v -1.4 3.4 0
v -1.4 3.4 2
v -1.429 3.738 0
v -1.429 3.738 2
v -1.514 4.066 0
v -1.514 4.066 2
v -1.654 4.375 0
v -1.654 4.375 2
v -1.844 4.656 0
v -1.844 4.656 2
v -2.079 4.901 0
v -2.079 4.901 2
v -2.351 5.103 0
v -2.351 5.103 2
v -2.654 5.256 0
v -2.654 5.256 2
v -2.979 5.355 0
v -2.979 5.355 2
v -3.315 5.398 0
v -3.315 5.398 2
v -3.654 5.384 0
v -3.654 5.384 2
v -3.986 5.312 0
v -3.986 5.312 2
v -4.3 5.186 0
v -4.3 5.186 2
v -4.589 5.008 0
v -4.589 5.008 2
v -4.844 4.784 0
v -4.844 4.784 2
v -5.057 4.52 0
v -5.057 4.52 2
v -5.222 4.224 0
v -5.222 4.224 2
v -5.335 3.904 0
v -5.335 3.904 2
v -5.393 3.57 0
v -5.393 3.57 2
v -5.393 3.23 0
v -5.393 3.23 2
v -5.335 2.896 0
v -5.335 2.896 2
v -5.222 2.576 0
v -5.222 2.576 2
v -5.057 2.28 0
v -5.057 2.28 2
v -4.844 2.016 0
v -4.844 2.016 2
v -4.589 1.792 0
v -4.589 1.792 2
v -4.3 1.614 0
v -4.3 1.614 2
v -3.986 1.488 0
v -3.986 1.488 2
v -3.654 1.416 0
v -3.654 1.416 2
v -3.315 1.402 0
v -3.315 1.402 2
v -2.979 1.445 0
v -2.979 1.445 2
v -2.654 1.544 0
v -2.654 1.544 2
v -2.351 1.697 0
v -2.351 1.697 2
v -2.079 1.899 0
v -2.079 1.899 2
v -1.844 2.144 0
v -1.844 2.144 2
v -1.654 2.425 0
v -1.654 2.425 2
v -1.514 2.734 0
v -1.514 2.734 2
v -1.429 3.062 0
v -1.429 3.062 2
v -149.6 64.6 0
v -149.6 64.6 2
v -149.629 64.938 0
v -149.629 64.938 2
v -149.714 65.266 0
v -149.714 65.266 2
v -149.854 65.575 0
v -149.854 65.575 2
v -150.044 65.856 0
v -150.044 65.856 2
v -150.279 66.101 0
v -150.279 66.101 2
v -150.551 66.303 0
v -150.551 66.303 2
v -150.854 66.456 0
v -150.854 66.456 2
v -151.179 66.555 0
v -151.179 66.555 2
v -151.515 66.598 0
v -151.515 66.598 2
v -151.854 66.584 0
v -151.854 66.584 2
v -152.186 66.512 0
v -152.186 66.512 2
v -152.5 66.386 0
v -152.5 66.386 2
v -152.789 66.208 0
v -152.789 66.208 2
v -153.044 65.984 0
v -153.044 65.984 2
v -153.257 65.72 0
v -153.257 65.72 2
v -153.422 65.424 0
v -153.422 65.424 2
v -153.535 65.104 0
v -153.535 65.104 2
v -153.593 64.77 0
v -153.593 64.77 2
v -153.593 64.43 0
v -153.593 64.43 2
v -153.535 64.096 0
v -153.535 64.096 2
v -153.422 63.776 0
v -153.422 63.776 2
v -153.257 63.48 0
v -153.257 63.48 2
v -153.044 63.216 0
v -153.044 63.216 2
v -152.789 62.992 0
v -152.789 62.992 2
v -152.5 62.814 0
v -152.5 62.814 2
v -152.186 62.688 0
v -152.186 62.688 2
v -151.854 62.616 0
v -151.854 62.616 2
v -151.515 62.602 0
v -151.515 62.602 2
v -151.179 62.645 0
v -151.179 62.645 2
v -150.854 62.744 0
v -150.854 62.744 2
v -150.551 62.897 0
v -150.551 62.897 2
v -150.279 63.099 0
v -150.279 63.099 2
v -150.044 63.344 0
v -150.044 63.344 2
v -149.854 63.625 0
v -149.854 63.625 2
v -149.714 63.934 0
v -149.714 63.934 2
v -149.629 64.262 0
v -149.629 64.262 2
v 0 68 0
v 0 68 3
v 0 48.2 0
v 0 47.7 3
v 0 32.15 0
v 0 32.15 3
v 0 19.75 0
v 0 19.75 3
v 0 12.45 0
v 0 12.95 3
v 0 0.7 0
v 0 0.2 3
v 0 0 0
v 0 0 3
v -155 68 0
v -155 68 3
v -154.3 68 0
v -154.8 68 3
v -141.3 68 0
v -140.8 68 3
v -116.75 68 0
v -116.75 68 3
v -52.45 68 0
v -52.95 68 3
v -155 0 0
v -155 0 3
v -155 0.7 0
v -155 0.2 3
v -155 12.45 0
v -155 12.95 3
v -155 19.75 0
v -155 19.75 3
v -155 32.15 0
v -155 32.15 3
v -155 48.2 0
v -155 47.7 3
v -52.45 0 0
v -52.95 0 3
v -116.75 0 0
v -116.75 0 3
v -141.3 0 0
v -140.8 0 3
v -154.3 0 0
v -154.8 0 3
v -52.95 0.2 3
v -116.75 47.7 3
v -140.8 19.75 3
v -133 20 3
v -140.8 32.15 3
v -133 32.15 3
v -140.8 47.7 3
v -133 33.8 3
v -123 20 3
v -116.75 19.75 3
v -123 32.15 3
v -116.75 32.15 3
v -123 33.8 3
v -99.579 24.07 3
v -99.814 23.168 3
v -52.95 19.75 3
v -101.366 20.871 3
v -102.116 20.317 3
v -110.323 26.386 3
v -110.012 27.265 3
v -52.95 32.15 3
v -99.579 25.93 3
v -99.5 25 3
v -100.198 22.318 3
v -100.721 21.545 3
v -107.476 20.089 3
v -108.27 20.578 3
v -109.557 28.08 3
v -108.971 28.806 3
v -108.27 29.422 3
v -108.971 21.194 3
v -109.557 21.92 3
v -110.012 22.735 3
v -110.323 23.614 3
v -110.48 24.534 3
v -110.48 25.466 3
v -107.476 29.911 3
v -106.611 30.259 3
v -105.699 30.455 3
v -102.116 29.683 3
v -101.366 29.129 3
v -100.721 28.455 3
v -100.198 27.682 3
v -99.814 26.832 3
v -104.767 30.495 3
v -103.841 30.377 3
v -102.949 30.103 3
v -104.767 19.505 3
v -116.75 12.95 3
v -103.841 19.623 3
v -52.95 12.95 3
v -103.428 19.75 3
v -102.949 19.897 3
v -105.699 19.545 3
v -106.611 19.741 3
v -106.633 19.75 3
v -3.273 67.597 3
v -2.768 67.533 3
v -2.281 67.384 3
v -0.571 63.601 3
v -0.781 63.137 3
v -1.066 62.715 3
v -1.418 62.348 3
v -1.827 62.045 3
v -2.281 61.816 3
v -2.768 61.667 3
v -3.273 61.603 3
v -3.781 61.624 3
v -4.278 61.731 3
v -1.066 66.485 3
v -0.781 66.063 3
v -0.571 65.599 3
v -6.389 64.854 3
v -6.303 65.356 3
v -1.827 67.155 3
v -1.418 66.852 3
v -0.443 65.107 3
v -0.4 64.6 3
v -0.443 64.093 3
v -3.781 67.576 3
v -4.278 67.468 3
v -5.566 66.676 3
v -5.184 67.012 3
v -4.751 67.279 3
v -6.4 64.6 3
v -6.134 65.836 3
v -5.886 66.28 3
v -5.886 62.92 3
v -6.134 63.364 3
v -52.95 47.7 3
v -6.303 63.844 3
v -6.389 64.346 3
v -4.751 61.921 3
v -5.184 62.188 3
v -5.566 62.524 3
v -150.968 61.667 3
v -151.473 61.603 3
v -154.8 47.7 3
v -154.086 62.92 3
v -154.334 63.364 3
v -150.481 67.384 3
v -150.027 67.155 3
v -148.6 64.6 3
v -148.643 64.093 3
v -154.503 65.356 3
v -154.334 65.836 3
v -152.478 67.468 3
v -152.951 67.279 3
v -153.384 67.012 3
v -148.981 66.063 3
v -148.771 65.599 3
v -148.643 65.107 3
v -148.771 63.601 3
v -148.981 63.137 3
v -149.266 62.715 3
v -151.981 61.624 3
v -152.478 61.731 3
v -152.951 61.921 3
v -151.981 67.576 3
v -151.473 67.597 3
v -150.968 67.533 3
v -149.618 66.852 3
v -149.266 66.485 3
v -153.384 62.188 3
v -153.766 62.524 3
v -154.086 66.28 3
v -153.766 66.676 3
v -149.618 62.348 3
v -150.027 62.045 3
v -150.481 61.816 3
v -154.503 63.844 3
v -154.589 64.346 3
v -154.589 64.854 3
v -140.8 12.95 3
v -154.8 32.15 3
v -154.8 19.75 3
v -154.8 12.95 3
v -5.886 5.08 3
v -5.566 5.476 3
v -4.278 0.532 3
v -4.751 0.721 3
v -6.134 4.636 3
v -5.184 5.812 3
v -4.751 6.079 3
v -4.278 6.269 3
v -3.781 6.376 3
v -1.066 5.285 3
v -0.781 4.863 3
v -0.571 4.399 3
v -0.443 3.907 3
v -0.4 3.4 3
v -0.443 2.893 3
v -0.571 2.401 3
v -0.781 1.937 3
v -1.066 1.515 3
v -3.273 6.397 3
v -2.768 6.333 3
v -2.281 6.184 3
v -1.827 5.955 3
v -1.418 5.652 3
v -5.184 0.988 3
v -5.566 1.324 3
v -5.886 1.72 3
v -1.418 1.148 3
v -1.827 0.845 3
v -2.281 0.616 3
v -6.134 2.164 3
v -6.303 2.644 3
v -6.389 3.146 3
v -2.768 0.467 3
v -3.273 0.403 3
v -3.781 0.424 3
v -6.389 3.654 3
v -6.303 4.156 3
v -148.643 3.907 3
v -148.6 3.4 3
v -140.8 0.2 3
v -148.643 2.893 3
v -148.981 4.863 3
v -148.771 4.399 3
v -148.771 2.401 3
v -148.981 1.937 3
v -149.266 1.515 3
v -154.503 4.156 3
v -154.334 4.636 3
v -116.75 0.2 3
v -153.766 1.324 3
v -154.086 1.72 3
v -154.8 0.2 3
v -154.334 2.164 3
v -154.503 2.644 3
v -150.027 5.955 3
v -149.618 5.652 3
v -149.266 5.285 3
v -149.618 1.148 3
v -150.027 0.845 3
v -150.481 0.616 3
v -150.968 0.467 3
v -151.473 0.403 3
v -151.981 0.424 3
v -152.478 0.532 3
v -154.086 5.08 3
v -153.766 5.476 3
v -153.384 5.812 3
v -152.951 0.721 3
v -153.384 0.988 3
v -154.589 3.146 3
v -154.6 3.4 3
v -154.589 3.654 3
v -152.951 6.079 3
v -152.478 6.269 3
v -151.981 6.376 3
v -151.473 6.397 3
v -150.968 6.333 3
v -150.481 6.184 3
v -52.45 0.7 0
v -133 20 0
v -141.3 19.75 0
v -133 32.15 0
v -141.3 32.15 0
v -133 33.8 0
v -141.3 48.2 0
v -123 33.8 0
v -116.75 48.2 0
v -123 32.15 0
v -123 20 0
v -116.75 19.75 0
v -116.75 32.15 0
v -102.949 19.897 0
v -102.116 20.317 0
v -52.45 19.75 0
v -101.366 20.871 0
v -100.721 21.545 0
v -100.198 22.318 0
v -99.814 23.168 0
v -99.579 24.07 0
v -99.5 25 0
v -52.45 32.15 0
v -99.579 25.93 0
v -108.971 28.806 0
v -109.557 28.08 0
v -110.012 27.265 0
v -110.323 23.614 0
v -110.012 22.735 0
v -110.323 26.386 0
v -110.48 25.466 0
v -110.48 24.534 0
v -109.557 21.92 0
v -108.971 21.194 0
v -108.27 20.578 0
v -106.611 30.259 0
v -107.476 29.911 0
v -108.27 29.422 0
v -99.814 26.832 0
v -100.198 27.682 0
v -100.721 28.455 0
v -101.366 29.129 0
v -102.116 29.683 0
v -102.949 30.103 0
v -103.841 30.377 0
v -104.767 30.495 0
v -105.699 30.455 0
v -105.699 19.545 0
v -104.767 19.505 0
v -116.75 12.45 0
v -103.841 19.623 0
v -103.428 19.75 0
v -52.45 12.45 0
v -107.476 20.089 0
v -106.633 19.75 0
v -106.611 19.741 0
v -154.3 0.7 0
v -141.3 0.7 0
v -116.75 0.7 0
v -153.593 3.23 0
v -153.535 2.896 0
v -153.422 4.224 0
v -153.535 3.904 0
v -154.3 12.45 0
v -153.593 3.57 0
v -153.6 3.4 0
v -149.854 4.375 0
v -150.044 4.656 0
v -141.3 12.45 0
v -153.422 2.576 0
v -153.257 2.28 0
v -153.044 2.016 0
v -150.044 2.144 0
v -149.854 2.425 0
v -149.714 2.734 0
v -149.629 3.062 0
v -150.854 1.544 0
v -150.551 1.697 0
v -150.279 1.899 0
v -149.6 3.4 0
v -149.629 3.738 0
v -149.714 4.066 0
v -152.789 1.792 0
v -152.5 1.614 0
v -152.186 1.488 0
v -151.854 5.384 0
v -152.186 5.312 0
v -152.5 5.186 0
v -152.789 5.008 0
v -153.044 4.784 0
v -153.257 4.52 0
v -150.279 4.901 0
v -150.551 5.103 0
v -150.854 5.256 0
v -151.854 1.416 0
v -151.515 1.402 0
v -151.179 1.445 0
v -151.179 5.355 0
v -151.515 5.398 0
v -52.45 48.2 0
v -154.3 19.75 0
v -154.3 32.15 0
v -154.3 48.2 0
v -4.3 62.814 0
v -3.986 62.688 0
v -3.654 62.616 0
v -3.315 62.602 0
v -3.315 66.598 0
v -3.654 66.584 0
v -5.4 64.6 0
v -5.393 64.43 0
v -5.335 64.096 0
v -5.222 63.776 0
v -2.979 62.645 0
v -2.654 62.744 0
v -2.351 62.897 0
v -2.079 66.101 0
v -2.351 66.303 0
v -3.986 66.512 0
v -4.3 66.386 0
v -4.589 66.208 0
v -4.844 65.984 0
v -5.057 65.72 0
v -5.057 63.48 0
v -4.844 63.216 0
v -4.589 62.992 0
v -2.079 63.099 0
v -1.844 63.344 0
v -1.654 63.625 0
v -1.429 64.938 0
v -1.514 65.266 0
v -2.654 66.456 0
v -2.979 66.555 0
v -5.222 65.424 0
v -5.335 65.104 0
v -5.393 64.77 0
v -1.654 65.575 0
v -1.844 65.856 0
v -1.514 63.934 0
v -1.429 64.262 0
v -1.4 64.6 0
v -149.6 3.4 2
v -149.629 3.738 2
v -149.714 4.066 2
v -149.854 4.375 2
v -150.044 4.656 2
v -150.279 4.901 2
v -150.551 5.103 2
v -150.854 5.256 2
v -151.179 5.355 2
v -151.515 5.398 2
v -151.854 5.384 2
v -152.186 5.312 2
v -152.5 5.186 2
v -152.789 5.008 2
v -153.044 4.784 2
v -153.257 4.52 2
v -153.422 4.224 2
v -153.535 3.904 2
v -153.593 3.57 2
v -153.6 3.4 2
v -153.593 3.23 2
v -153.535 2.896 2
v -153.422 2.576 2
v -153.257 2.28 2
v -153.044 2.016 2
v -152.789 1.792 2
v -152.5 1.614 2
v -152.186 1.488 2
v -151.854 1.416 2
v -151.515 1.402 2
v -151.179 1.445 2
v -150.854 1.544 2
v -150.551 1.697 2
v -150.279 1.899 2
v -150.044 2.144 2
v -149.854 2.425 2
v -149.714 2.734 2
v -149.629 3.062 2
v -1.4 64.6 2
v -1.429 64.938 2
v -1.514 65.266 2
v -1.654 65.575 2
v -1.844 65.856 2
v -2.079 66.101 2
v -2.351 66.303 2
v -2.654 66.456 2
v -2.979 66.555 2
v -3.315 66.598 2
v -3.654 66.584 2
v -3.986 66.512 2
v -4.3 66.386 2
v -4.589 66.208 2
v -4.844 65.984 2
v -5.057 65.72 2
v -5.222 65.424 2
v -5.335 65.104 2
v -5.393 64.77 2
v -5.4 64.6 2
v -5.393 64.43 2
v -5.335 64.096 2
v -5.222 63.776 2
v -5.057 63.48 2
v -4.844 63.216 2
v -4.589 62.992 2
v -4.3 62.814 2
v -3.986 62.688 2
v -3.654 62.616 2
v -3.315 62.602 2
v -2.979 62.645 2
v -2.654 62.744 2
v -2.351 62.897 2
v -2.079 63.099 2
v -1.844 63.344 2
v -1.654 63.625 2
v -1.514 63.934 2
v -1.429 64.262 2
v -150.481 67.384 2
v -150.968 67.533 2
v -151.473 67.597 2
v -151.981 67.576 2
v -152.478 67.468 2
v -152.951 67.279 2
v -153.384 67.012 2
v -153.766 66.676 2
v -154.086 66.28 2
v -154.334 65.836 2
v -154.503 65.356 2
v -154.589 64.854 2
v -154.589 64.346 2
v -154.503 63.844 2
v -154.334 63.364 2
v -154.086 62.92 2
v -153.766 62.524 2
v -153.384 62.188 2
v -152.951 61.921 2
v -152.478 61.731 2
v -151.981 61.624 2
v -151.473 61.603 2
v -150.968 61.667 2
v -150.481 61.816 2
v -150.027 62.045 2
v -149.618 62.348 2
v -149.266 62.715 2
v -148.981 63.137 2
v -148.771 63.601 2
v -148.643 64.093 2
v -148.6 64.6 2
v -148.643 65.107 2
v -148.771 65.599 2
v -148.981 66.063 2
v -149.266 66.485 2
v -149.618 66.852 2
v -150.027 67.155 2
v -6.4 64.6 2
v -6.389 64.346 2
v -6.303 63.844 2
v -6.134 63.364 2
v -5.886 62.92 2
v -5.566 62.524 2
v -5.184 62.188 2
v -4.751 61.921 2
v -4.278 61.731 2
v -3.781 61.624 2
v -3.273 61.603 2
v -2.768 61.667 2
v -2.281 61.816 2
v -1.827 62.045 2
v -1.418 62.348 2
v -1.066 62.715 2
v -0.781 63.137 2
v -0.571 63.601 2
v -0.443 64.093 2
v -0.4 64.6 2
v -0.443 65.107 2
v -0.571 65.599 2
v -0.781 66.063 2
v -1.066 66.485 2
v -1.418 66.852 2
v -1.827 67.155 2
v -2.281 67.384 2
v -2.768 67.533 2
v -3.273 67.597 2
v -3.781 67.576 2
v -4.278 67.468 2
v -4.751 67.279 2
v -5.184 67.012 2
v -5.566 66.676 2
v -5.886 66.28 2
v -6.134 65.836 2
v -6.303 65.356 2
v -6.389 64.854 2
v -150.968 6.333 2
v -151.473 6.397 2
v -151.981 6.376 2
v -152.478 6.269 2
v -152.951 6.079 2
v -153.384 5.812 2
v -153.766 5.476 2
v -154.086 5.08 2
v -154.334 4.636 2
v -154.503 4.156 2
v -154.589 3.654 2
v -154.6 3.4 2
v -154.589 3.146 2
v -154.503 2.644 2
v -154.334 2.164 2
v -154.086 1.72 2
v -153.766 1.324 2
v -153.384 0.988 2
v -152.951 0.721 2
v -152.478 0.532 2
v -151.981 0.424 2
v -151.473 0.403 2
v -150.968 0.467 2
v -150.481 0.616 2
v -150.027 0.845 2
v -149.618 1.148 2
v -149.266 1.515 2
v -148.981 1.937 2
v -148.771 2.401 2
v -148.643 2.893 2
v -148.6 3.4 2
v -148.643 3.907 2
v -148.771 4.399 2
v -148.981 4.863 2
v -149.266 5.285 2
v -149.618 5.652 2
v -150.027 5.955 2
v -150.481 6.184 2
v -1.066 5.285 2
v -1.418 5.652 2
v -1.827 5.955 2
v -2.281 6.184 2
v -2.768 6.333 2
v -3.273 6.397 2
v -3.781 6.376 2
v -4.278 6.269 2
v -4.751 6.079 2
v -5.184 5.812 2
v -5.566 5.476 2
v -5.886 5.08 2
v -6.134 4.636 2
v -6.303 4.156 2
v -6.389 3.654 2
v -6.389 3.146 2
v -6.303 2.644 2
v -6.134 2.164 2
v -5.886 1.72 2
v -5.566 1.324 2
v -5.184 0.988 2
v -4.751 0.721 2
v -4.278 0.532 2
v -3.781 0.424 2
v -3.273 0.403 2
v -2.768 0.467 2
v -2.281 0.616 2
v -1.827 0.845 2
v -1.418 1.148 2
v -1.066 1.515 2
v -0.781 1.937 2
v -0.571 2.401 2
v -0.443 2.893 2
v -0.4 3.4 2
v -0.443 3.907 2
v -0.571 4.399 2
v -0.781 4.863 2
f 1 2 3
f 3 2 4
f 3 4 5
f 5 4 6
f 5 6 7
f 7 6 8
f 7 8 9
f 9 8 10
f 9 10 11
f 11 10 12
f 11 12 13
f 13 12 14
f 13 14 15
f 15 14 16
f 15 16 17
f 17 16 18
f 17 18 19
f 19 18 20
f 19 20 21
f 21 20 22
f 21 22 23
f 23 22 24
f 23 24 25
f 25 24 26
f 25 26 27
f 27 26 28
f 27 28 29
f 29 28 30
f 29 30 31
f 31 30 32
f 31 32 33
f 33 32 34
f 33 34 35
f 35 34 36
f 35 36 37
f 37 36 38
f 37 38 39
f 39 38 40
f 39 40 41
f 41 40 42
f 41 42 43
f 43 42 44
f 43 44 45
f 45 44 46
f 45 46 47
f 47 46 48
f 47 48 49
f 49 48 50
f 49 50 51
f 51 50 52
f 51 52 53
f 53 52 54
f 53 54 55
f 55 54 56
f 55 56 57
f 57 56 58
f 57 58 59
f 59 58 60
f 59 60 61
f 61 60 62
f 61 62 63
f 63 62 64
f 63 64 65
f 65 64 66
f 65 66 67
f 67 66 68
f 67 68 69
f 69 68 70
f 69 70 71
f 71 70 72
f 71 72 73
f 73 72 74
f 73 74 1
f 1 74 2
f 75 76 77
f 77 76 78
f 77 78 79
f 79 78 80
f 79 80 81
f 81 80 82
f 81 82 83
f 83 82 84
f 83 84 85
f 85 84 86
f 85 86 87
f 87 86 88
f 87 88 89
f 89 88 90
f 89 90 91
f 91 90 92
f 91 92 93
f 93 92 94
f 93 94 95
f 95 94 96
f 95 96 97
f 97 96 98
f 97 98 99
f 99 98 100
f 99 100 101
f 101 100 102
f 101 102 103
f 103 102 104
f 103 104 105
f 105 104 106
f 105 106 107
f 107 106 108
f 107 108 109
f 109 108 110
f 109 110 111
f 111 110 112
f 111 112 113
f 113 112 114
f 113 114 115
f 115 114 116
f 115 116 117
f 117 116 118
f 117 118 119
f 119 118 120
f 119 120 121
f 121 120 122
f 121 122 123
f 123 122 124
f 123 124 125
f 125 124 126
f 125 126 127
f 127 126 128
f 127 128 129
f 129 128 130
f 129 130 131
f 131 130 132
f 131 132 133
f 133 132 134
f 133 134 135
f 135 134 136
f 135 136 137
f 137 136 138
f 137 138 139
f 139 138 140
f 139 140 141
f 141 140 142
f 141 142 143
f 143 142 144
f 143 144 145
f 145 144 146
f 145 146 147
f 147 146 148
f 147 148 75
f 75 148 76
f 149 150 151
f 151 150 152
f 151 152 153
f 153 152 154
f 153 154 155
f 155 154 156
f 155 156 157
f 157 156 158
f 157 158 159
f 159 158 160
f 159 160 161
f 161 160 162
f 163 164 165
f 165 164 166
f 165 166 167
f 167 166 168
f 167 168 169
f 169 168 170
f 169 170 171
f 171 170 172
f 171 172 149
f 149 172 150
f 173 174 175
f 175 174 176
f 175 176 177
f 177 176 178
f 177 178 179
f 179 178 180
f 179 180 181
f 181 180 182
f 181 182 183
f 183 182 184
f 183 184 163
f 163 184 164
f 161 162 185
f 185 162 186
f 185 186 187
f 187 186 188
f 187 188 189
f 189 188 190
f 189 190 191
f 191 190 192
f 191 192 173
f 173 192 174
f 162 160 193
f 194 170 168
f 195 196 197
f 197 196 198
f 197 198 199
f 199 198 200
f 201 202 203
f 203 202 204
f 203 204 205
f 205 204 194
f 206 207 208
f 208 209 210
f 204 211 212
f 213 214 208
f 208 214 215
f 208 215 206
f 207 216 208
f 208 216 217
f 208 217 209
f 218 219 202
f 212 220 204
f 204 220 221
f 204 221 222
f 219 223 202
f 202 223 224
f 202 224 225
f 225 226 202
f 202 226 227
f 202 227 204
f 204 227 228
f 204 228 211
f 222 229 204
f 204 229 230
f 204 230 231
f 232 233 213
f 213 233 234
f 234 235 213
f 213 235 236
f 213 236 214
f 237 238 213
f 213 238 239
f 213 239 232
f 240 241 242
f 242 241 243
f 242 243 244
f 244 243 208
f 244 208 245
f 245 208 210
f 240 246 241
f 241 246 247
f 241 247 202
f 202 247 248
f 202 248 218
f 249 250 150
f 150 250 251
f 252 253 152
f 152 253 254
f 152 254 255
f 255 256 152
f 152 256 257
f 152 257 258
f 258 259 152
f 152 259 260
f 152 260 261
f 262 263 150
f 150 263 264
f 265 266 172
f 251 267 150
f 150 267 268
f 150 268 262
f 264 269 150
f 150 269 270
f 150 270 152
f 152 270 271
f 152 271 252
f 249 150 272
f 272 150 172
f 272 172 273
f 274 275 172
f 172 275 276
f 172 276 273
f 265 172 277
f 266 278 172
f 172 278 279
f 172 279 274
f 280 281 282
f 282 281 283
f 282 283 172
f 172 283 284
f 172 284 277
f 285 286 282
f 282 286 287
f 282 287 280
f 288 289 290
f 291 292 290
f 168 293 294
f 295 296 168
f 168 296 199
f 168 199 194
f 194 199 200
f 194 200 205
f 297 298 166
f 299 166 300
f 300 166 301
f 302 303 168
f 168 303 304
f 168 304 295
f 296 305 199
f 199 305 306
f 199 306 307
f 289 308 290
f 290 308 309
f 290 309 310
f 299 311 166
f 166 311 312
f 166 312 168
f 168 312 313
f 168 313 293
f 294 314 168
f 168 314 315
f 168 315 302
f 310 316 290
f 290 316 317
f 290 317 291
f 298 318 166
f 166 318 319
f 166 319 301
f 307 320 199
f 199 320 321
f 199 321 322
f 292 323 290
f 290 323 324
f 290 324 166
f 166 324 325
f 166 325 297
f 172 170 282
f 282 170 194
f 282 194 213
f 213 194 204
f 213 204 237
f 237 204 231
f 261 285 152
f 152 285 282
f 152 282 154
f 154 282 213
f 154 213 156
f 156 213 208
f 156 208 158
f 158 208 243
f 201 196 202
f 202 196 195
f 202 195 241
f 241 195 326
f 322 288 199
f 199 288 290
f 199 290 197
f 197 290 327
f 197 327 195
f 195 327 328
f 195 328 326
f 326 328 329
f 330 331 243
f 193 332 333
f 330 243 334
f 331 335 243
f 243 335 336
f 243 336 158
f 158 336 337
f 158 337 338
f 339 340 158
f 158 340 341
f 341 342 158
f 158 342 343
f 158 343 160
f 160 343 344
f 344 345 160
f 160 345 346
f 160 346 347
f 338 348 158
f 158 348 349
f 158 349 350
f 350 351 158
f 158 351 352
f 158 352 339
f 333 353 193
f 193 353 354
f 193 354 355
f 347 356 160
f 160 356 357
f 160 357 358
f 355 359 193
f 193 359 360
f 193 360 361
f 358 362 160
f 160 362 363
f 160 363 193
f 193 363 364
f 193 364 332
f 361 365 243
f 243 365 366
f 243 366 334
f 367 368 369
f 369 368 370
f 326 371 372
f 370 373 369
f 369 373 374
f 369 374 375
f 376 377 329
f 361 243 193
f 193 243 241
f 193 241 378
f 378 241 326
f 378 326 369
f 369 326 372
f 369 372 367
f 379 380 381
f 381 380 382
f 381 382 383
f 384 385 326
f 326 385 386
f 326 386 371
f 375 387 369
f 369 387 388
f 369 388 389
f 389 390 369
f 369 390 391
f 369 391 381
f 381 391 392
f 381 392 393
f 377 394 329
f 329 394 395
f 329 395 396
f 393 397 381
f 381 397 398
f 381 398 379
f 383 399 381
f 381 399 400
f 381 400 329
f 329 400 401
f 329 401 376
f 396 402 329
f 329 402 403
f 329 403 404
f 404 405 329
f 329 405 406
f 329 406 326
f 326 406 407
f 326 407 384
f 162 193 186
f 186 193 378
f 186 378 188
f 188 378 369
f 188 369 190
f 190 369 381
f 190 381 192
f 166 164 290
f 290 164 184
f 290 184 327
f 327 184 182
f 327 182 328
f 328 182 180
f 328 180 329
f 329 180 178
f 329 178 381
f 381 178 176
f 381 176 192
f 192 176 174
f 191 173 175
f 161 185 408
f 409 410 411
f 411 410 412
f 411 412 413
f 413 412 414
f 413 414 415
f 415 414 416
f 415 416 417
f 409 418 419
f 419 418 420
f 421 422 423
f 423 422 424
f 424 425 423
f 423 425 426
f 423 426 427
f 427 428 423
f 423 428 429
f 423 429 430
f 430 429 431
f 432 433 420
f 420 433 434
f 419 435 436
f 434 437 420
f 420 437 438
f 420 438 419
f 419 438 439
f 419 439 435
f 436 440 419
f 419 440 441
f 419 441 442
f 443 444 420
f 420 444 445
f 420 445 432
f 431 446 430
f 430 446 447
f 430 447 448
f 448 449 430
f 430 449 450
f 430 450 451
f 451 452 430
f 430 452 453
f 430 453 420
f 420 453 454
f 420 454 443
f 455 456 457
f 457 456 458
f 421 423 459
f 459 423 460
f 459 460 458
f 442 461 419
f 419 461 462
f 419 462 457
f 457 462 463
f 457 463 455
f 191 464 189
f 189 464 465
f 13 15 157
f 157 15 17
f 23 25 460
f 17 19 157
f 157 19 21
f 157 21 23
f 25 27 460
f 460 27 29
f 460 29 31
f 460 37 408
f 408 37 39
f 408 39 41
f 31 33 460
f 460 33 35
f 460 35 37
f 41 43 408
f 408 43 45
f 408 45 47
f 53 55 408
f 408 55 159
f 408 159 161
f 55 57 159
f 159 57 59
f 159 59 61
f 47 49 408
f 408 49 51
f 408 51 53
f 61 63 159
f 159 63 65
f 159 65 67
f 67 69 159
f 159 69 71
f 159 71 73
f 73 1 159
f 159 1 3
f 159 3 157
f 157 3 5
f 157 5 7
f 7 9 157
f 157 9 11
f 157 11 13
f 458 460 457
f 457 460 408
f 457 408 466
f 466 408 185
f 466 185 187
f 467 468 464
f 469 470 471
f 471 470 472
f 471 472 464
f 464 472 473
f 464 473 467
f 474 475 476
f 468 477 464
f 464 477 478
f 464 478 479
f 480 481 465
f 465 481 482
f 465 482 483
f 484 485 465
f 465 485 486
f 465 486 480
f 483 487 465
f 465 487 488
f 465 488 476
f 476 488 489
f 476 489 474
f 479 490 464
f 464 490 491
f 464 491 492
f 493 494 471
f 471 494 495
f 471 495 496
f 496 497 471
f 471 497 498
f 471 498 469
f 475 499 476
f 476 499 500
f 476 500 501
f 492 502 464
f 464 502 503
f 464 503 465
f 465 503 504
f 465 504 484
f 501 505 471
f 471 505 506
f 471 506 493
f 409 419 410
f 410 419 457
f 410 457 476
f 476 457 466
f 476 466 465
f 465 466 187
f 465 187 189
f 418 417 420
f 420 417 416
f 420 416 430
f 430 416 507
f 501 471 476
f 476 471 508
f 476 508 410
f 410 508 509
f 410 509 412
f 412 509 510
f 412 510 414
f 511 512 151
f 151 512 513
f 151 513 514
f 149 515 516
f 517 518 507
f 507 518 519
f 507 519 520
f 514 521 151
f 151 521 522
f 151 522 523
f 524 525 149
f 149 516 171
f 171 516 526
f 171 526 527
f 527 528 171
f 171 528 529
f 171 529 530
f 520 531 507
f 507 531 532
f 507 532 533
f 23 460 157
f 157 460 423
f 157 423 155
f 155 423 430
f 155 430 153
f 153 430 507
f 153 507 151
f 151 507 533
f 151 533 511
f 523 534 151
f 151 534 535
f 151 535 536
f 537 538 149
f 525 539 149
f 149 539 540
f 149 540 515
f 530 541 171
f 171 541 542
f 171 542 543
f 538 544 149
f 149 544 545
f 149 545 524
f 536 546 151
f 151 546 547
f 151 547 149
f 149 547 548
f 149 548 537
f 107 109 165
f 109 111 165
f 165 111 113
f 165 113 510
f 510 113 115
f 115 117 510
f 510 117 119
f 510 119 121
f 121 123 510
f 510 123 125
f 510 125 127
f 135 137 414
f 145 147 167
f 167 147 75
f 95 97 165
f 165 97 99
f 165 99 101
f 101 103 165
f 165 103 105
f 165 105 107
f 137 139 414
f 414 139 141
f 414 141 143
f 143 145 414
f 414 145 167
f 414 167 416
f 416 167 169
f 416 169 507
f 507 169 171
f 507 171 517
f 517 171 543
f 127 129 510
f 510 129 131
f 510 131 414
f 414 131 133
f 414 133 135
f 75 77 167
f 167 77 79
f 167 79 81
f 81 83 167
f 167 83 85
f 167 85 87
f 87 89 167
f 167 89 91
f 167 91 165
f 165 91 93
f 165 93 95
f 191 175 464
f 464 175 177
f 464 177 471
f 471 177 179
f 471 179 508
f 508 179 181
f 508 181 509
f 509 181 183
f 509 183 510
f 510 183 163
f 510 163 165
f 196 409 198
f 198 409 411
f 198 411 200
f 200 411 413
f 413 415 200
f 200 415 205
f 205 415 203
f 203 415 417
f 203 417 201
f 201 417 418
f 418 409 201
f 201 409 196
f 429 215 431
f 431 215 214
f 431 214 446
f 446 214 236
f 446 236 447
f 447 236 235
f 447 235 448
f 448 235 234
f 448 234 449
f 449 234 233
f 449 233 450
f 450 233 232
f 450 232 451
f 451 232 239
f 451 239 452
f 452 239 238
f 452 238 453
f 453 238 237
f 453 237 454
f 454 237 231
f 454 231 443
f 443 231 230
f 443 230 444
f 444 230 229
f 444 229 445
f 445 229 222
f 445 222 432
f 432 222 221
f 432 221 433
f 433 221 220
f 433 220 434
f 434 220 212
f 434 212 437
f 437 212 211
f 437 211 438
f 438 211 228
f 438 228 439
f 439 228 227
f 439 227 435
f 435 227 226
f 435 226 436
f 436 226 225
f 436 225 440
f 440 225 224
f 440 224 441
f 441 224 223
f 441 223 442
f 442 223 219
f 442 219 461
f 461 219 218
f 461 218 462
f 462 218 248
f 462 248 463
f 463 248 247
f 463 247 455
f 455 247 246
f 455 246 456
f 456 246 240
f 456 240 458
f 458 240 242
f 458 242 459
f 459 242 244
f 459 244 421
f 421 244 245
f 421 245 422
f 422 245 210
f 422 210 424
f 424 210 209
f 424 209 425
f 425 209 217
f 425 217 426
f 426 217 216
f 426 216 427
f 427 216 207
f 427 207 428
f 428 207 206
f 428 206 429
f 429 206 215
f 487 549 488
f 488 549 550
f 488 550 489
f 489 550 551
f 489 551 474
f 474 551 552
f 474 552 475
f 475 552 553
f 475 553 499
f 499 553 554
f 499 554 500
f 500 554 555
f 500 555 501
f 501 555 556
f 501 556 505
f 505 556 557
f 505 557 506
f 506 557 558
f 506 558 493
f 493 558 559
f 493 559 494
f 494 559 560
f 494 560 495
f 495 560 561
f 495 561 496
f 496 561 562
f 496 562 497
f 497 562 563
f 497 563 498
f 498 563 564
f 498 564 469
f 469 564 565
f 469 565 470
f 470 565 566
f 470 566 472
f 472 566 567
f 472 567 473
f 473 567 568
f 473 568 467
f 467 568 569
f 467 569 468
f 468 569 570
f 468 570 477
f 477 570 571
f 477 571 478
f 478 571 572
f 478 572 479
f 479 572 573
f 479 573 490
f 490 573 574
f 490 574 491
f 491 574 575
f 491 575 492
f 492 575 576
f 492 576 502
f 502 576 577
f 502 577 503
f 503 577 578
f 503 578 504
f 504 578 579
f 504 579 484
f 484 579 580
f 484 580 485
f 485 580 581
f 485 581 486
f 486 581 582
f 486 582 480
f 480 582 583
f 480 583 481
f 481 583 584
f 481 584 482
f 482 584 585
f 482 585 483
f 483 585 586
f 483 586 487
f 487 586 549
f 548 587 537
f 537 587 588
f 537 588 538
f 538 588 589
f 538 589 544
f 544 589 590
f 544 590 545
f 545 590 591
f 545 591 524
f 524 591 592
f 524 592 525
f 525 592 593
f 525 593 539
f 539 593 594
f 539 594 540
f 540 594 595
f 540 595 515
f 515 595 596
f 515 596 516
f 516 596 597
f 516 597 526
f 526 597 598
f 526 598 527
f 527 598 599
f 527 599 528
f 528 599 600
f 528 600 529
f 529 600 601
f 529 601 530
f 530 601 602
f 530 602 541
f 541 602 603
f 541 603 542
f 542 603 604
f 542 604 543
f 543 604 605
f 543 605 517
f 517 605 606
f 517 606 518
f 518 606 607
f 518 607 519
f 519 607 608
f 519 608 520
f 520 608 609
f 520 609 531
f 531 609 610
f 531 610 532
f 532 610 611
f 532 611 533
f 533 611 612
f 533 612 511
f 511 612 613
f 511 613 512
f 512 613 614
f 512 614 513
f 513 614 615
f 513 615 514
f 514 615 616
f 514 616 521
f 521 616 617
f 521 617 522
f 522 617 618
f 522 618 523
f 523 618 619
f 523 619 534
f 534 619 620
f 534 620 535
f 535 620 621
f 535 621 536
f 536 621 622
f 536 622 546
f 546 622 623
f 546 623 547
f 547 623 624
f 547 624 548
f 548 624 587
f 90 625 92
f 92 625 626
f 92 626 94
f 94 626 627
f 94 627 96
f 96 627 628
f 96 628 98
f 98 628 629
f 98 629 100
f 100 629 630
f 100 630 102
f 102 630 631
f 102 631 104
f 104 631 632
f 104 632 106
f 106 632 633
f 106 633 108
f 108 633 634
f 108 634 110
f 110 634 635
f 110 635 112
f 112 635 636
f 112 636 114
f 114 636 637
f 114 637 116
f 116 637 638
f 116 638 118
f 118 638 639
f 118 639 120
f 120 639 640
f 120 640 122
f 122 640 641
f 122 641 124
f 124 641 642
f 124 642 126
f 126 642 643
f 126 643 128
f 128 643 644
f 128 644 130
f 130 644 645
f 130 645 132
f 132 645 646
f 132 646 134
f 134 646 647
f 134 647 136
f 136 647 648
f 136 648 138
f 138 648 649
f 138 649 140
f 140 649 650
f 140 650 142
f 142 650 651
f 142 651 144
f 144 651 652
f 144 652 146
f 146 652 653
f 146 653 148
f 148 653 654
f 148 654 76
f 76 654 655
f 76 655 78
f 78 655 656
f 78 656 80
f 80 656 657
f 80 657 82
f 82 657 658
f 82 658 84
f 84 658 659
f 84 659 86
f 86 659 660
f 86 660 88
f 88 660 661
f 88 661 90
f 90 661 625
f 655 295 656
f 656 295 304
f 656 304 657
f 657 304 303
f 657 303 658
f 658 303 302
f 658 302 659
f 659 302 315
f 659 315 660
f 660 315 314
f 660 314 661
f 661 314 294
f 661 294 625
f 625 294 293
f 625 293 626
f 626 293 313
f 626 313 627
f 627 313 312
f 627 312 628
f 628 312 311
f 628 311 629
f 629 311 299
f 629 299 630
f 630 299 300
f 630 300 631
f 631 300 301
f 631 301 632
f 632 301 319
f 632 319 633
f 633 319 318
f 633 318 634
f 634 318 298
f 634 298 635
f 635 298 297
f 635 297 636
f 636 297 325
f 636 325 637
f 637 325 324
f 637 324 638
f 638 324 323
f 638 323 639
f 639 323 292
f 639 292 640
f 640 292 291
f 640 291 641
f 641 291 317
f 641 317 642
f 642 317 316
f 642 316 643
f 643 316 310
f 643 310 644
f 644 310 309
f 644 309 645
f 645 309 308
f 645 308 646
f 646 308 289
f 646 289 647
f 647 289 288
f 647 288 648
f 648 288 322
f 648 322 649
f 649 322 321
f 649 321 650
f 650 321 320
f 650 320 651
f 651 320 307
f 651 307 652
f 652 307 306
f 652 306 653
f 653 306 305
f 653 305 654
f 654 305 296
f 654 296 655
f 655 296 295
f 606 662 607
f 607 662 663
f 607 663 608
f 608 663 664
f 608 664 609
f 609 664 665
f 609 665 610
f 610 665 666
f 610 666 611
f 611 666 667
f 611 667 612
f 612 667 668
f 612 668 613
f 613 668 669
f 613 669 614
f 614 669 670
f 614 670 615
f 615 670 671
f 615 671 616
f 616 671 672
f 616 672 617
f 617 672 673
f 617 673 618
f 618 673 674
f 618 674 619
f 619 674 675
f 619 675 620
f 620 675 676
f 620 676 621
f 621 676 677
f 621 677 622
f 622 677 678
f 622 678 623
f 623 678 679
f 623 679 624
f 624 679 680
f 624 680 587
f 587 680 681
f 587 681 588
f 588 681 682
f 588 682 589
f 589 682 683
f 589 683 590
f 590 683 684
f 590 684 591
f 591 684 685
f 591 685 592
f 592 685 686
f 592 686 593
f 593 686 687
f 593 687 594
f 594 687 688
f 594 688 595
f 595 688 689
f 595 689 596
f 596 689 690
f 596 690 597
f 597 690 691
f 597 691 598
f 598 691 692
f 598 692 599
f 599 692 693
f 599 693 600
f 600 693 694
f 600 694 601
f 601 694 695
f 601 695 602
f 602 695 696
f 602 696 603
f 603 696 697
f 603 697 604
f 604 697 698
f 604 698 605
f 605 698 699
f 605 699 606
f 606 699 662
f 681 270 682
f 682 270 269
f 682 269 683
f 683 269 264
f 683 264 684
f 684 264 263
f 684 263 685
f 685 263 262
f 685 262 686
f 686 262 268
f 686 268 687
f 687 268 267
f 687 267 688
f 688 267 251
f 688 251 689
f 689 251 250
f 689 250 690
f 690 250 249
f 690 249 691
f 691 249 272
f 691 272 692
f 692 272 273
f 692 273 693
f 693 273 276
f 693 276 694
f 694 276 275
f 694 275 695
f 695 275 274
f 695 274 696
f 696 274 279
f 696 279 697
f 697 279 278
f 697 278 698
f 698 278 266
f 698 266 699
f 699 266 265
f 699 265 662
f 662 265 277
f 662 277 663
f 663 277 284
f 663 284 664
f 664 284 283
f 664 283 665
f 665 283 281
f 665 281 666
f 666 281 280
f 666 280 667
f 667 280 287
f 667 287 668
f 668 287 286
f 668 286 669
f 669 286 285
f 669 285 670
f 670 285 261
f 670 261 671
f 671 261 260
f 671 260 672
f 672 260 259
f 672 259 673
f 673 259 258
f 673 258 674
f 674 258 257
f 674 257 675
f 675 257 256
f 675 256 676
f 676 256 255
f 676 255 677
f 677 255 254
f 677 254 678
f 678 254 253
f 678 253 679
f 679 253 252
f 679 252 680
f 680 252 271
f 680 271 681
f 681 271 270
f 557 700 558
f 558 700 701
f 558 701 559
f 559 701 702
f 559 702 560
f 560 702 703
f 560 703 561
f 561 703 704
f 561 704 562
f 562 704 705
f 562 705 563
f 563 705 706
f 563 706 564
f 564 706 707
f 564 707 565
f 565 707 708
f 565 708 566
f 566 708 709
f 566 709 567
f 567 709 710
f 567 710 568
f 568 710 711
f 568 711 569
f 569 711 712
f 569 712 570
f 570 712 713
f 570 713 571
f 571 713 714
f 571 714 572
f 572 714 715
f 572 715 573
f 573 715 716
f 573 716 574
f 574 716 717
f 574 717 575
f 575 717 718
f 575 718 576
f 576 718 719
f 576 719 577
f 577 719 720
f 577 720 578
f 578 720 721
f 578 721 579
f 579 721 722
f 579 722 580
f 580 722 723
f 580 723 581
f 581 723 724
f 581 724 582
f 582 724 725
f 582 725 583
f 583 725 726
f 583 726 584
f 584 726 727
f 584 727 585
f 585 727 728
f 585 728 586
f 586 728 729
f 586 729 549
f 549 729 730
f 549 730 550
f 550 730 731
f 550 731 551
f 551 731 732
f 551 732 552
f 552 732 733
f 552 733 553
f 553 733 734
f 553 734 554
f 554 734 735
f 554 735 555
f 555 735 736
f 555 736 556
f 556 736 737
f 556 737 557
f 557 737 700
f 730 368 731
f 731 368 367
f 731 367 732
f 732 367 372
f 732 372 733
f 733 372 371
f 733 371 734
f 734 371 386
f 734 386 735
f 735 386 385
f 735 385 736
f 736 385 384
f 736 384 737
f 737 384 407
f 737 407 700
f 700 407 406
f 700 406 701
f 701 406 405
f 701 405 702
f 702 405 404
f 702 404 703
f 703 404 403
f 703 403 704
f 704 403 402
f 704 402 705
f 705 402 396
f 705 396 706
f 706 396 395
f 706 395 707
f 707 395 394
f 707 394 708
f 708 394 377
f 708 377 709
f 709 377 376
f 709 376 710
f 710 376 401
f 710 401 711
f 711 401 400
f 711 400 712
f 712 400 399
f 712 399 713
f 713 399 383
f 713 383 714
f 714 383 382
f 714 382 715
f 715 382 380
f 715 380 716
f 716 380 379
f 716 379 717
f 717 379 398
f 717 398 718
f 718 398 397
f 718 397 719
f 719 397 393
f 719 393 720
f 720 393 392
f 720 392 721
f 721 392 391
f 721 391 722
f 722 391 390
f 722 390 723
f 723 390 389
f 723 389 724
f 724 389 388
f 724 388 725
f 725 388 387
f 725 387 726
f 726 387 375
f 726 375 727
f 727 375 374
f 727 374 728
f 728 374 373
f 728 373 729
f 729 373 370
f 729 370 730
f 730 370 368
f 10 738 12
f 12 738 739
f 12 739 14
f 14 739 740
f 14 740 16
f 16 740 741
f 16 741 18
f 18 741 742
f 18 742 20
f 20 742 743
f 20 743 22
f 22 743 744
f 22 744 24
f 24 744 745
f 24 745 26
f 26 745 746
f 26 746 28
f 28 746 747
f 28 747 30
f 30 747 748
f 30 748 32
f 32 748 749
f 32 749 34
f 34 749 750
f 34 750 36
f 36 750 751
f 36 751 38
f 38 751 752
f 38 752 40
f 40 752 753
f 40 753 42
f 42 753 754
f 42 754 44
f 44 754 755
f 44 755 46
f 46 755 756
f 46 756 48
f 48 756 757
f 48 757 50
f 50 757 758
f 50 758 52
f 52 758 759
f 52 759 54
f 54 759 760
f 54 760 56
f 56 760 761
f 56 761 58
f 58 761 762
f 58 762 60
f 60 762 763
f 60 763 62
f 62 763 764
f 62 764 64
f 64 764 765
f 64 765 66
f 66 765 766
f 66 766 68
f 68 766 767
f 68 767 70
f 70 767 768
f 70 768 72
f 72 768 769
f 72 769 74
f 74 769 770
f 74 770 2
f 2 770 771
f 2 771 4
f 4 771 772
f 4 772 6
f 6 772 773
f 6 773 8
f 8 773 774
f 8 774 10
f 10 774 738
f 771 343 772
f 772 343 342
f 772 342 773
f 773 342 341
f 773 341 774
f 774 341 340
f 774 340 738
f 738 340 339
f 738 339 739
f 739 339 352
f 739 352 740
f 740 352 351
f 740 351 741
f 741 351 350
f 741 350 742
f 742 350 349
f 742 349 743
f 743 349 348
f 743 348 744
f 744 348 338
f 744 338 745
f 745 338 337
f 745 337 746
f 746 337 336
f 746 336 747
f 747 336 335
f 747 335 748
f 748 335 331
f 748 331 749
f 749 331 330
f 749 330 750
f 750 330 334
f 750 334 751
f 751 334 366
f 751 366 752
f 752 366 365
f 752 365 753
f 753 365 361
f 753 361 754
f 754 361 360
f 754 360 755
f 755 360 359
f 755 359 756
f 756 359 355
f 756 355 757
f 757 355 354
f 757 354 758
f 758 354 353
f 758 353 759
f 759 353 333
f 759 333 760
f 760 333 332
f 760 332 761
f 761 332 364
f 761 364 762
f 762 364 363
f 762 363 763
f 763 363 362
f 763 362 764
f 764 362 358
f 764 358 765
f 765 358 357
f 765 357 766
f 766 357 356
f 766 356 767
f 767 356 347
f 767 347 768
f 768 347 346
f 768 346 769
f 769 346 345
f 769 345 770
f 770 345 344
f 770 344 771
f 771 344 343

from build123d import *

# Parameters (mm, degrees)
IZIM1_W                     = 155
IZIM1_H                     = 68
Y_KSEKLIK_EKSTR_ZYON1_DEPTH = 3
IZIM2_R                     = 5.5
IZIM2_W                     = 10
IZIM2_H                     = 13.8
KES_EKSTR_ZYON1_DEPTH       = 3
IZIM3_R                     = 2
KES_EKSTR_ZYON2_DEPTH       = 3
IZIM4_R                     = 3
KES_EKSTR_ZYON3_DEPTH       = 1


with BuildPart() as part:
    # Çizim1 → Yükseklik-Ekstrüzyon1 (new body)
    with BuildSketch(Plane.XY):
        with Locations((-77.5, 34)):
            Rectangle(IZIM1_W, IZIM1_H)
    extrude(amount=Y_KSEKLIK_EKSTR_ZYON1_DEPTH)

    # Çizim2 → Kes-Ekstrüzyon1 (cut)
    with BuildSketch(Plane.XY.offset(3)):
        with Locations((-105, 25)):
            Circle(IZIM2_R)
        with Locations((-128, 26.9)):
            Rectangle(IZIM2_W, IZIM2_H)
    extrude(amount=-KES_EKSTR_ZYON1_DEPTH, mode=Mode.SUBTRACT)

    # Çizim3 → Kes-Ekstrüzyon2 (cut)
    with BuildSketch(Plane.XY.offset(3)):
        with Locations((-151.6, 64.6)):
            Circle(IZIM3_R)
        with Locations(Location((-3.4, 64.6, 0), (0, 0, 180))):
            Circle(IZIM3_R)
        with Locations(Location((-151.6, 3.4, 0), (0, 0, 180))):
            Circle(IZIM3_R)
        with Locations((-3.4, 3.4)):
            Circle(IZIM3_R)
    extrude(amount=-KES_EKSTR_ZYON2_DEPTH, mode=Mode.SUBTRACT)

    # Çizim4 → Kes-Ekstrüzyon3 (cut)
    with BuildSketch(Plane.XY.offset(3)):
        with Locations((-151.6, 64.6)):
            Circle(IZIM4_R)
        with Locations(Location((-3.4, 64.6, 0), (0, 0, 180))):
            Circle(IZIM4_R)
        with Locations((-3.4, 3.4)):
            Circle(IZIM4_R)
        with Locations(Location((-151.6, 3.4, 0), (0, 0, 180))):
            Circle(IZIM4_R)
    extrude(amount=-KES_EKSTR_ZYON3_DEPTH, mode=Mode.SUBTRACT)


solid = part.part
